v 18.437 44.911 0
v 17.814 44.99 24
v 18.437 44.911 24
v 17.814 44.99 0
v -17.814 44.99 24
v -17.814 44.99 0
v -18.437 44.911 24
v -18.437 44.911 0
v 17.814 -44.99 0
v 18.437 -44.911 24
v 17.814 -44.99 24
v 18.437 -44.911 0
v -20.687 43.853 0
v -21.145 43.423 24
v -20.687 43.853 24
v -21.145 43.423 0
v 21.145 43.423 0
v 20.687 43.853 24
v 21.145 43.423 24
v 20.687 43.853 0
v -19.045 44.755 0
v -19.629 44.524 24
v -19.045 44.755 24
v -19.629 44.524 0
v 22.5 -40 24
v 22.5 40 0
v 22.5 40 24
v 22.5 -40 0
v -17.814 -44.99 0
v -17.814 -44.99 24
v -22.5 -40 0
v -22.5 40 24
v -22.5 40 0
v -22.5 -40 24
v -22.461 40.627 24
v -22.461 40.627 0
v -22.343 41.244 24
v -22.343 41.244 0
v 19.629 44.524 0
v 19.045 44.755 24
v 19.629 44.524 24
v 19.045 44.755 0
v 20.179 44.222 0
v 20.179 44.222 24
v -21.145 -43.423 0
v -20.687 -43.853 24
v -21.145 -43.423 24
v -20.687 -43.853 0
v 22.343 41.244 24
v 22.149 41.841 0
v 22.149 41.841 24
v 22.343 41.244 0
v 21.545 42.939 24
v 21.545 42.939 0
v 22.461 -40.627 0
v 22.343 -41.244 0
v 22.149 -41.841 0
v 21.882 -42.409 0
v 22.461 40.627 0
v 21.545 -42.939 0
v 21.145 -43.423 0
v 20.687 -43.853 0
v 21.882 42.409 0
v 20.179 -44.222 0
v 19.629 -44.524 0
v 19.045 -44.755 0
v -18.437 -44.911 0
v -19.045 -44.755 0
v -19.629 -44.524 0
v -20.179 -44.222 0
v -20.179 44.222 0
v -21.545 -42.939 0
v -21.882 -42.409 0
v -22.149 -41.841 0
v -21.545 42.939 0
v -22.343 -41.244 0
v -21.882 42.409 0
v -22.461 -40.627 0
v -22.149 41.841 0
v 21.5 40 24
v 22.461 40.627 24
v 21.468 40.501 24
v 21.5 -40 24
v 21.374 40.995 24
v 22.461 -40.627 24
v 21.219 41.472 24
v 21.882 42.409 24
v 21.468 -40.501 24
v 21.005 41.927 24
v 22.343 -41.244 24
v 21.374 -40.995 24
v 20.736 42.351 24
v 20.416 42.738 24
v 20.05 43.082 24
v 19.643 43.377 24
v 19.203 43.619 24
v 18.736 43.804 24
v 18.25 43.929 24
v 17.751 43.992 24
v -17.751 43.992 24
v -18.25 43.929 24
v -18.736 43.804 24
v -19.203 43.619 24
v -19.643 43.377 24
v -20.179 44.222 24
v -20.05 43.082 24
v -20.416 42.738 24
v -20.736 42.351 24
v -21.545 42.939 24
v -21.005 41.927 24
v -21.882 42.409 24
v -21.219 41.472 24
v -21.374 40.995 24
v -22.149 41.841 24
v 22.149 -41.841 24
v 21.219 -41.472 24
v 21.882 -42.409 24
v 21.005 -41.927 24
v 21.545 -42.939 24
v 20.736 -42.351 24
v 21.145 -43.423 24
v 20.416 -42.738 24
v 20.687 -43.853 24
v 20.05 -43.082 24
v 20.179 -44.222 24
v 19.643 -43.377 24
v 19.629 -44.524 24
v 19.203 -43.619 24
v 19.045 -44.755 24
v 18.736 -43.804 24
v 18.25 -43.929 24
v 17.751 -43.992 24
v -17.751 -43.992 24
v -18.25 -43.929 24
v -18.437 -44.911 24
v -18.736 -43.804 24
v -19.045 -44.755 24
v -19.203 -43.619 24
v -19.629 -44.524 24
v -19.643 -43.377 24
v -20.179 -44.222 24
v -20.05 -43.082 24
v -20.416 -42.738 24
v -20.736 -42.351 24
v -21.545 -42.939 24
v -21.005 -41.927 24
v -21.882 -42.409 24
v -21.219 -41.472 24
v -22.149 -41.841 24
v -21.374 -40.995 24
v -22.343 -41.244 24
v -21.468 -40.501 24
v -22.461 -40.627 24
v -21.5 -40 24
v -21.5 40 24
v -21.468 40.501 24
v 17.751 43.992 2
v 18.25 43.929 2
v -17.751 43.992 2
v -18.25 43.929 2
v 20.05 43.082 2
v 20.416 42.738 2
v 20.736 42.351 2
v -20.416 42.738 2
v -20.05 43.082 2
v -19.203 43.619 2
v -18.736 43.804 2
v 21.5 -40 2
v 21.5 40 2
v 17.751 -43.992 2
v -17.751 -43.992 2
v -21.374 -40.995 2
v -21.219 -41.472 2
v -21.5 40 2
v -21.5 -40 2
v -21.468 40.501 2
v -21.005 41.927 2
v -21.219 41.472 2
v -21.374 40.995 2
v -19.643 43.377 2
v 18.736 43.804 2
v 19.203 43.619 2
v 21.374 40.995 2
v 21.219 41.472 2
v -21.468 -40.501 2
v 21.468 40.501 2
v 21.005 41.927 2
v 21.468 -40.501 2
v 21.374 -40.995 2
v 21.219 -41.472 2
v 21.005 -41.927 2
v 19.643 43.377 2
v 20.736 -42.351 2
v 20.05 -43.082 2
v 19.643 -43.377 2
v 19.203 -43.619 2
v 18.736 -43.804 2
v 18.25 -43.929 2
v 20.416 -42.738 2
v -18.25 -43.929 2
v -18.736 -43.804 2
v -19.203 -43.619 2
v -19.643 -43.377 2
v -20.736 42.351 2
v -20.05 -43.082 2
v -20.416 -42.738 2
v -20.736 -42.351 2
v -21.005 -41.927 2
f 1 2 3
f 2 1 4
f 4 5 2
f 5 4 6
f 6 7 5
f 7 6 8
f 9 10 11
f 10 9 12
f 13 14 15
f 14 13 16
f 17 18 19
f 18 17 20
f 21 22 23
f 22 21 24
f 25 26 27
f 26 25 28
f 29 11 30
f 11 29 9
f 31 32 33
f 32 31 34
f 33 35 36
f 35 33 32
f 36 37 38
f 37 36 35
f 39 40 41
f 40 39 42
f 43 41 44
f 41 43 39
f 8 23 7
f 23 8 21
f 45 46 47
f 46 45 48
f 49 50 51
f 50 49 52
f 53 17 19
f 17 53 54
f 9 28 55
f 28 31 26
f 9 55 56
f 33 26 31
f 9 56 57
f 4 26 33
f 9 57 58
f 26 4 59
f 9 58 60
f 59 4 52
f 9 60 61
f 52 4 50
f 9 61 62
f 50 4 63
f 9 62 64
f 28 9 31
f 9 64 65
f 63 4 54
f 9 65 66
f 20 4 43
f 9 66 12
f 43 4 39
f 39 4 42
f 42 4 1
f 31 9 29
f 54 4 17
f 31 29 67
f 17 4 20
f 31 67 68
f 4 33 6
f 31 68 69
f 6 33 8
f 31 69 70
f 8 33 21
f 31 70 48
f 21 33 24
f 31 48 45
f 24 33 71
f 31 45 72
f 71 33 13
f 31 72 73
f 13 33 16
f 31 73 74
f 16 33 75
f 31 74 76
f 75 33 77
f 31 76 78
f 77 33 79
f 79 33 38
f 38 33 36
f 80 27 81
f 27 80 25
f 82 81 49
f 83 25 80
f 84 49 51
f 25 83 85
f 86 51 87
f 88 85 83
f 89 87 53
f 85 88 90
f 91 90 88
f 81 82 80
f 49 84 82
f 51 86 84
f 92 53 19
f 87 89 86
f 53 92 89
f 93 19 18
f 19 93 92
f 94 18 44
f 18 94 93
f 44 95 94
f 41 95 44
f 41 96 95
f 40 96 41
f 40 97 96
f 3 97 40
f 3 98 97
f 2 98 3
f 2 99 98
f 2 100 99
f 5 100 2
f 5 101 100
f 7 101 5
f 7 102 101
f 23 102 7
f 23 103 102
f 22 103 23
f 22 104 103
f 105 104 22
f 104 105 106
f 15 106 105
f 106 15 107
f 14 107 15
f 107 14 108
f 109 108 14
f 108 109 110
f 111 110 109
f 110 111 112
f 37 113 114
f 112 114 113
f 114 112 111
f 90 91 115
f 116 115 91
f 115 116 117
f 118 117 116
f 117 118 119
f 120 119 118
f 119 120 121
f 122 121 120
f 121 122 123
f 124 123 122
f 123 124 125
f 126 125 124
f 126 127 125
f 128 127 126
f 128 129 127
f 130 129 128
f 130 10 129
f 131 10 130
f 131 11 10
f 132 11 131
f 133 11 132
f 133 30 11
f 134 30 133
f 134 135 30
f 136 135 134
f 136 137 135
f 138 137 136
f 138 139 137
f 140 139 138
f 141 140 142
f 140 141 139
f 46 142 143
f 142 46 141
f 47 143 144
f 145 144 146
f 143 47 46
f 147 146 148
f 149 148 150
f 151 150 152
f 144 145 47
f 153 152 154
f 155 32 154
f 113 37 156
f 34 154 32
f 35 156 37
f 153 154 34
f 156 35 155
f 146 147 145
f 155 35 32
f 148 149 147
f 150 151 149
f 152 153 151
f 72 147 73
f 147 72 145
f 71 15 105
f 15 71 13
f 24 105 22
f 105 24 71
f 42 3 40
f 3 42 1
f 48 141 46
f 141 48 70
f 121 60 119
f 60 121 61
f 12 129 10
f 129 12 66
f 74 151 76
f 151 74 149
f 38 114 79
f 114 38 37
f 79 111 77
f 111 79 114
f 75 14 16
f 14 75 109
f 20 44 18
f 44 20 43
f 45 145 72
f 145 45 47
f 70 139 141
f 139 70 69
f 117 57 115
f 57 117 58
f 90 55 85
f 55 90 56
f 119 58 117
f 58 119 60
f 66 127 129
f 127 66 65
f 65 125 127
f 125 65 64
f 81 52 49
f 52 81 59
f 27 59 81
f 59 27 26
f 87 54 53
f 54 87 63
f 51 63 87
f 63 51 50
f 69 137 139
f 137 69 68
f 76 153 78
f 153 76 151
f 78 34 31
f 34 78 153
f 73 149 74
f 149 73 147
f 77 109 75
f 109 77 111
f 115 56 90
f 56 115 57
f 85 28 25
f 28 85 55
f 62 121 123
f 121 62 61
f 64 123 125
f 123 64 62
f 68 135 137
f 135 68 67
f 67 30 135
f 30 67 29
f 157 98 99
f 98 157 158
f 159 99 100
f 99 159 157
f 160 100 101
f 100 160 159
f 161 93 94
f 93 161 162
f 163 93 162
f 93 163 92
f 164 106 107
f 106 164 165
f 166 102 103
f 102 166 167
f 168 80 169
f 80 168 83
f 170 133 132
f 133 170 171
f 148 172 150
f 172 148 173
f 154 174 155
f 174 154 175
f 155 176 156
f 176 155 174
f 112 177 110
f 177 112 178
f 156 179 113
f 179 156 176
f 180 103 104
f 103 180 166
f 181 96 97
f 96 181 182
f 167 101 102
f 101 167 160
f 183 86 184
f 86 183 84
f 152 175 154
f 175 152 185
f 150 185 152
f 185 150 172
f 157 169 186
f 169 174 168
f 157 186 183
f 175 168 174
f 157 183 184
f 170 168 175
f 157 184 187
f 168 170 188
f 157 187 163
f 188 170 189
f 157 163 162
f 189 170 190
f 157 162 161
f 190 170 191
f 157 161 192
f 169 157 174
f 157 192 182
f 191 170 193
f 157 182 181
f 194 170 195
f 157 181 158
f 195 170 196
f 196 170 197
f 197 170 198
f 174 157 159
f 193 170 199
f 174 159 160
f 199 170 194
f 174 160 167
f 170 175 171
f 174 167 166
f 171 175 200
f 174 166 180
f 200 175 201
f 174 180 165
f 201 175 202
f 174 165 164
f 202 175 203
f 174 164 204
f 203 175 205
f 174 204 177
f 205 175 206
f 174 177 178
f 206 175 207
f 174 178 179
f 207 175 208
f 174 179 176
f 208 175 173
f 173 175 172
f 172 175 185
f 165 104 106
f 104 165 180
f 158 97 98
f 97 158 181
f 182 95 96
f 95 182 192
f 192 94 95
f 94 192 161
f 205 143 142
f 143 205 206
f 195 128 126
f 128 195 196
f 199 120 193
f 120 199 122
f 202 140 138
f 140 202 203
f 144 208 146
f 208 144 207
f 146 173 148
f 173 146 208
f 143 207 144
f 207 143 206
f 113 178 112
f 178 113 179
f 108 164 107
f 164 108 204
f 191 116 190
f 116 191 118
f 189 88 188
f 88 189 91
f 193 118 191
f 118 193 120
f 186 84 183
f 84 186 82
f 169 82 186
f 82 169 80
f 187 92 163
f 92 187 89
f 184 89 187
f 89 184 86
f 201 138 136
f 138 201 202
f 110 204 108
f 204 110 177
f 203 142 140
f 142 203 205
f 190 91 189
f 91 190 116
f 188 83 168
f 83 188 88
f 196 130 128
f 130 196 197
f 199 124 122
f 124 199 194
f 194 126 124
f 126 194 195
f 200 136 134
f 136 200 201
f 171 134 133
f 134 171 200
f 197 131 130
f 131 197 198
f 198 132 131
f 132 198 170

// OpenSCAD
$fn = 50;


difference() {
	union() {
		hull() {
			translate(v = [-17.5000000000, 40.0000000000, 0]) {
				cylinder(h = 24, r = 5);
			}
			translate(v = [17.5000000000, 40.0000000000, 0]) {
				cylinder(h = 24, r = 5);
			}
			translate(v = [-17.5000000000, -40.0000000000, 0]) {
				cylinder(h = 24, r = 5);
			}
			translate(v = [17.5000000000, -40.0000000000, 0]) {
				cylinder(h = 24, r = 5);
			}
		}
	}
	union() {
		translate(v = [0, 0, 2]) {
			hull() {
				translate(v = [-17.5000000000, 40.0000000000, 0]) {
					cylinder(h = 22, r = 4);
				}
				translate(v = [17.5000000000, 40.0000000000, 0]) {
					cylinder(h = 22, r = 4);
				}
				translate(v = [-17.5000000000, -40.0000000000, 0]) {
					cylinder(h = 22, r = 4);
				}
				translate(v = [17.5000000000, -40.0000000000, 0]) {
					cylinder(h = 22, r = 4);
				}
			}
		}
	}
}
